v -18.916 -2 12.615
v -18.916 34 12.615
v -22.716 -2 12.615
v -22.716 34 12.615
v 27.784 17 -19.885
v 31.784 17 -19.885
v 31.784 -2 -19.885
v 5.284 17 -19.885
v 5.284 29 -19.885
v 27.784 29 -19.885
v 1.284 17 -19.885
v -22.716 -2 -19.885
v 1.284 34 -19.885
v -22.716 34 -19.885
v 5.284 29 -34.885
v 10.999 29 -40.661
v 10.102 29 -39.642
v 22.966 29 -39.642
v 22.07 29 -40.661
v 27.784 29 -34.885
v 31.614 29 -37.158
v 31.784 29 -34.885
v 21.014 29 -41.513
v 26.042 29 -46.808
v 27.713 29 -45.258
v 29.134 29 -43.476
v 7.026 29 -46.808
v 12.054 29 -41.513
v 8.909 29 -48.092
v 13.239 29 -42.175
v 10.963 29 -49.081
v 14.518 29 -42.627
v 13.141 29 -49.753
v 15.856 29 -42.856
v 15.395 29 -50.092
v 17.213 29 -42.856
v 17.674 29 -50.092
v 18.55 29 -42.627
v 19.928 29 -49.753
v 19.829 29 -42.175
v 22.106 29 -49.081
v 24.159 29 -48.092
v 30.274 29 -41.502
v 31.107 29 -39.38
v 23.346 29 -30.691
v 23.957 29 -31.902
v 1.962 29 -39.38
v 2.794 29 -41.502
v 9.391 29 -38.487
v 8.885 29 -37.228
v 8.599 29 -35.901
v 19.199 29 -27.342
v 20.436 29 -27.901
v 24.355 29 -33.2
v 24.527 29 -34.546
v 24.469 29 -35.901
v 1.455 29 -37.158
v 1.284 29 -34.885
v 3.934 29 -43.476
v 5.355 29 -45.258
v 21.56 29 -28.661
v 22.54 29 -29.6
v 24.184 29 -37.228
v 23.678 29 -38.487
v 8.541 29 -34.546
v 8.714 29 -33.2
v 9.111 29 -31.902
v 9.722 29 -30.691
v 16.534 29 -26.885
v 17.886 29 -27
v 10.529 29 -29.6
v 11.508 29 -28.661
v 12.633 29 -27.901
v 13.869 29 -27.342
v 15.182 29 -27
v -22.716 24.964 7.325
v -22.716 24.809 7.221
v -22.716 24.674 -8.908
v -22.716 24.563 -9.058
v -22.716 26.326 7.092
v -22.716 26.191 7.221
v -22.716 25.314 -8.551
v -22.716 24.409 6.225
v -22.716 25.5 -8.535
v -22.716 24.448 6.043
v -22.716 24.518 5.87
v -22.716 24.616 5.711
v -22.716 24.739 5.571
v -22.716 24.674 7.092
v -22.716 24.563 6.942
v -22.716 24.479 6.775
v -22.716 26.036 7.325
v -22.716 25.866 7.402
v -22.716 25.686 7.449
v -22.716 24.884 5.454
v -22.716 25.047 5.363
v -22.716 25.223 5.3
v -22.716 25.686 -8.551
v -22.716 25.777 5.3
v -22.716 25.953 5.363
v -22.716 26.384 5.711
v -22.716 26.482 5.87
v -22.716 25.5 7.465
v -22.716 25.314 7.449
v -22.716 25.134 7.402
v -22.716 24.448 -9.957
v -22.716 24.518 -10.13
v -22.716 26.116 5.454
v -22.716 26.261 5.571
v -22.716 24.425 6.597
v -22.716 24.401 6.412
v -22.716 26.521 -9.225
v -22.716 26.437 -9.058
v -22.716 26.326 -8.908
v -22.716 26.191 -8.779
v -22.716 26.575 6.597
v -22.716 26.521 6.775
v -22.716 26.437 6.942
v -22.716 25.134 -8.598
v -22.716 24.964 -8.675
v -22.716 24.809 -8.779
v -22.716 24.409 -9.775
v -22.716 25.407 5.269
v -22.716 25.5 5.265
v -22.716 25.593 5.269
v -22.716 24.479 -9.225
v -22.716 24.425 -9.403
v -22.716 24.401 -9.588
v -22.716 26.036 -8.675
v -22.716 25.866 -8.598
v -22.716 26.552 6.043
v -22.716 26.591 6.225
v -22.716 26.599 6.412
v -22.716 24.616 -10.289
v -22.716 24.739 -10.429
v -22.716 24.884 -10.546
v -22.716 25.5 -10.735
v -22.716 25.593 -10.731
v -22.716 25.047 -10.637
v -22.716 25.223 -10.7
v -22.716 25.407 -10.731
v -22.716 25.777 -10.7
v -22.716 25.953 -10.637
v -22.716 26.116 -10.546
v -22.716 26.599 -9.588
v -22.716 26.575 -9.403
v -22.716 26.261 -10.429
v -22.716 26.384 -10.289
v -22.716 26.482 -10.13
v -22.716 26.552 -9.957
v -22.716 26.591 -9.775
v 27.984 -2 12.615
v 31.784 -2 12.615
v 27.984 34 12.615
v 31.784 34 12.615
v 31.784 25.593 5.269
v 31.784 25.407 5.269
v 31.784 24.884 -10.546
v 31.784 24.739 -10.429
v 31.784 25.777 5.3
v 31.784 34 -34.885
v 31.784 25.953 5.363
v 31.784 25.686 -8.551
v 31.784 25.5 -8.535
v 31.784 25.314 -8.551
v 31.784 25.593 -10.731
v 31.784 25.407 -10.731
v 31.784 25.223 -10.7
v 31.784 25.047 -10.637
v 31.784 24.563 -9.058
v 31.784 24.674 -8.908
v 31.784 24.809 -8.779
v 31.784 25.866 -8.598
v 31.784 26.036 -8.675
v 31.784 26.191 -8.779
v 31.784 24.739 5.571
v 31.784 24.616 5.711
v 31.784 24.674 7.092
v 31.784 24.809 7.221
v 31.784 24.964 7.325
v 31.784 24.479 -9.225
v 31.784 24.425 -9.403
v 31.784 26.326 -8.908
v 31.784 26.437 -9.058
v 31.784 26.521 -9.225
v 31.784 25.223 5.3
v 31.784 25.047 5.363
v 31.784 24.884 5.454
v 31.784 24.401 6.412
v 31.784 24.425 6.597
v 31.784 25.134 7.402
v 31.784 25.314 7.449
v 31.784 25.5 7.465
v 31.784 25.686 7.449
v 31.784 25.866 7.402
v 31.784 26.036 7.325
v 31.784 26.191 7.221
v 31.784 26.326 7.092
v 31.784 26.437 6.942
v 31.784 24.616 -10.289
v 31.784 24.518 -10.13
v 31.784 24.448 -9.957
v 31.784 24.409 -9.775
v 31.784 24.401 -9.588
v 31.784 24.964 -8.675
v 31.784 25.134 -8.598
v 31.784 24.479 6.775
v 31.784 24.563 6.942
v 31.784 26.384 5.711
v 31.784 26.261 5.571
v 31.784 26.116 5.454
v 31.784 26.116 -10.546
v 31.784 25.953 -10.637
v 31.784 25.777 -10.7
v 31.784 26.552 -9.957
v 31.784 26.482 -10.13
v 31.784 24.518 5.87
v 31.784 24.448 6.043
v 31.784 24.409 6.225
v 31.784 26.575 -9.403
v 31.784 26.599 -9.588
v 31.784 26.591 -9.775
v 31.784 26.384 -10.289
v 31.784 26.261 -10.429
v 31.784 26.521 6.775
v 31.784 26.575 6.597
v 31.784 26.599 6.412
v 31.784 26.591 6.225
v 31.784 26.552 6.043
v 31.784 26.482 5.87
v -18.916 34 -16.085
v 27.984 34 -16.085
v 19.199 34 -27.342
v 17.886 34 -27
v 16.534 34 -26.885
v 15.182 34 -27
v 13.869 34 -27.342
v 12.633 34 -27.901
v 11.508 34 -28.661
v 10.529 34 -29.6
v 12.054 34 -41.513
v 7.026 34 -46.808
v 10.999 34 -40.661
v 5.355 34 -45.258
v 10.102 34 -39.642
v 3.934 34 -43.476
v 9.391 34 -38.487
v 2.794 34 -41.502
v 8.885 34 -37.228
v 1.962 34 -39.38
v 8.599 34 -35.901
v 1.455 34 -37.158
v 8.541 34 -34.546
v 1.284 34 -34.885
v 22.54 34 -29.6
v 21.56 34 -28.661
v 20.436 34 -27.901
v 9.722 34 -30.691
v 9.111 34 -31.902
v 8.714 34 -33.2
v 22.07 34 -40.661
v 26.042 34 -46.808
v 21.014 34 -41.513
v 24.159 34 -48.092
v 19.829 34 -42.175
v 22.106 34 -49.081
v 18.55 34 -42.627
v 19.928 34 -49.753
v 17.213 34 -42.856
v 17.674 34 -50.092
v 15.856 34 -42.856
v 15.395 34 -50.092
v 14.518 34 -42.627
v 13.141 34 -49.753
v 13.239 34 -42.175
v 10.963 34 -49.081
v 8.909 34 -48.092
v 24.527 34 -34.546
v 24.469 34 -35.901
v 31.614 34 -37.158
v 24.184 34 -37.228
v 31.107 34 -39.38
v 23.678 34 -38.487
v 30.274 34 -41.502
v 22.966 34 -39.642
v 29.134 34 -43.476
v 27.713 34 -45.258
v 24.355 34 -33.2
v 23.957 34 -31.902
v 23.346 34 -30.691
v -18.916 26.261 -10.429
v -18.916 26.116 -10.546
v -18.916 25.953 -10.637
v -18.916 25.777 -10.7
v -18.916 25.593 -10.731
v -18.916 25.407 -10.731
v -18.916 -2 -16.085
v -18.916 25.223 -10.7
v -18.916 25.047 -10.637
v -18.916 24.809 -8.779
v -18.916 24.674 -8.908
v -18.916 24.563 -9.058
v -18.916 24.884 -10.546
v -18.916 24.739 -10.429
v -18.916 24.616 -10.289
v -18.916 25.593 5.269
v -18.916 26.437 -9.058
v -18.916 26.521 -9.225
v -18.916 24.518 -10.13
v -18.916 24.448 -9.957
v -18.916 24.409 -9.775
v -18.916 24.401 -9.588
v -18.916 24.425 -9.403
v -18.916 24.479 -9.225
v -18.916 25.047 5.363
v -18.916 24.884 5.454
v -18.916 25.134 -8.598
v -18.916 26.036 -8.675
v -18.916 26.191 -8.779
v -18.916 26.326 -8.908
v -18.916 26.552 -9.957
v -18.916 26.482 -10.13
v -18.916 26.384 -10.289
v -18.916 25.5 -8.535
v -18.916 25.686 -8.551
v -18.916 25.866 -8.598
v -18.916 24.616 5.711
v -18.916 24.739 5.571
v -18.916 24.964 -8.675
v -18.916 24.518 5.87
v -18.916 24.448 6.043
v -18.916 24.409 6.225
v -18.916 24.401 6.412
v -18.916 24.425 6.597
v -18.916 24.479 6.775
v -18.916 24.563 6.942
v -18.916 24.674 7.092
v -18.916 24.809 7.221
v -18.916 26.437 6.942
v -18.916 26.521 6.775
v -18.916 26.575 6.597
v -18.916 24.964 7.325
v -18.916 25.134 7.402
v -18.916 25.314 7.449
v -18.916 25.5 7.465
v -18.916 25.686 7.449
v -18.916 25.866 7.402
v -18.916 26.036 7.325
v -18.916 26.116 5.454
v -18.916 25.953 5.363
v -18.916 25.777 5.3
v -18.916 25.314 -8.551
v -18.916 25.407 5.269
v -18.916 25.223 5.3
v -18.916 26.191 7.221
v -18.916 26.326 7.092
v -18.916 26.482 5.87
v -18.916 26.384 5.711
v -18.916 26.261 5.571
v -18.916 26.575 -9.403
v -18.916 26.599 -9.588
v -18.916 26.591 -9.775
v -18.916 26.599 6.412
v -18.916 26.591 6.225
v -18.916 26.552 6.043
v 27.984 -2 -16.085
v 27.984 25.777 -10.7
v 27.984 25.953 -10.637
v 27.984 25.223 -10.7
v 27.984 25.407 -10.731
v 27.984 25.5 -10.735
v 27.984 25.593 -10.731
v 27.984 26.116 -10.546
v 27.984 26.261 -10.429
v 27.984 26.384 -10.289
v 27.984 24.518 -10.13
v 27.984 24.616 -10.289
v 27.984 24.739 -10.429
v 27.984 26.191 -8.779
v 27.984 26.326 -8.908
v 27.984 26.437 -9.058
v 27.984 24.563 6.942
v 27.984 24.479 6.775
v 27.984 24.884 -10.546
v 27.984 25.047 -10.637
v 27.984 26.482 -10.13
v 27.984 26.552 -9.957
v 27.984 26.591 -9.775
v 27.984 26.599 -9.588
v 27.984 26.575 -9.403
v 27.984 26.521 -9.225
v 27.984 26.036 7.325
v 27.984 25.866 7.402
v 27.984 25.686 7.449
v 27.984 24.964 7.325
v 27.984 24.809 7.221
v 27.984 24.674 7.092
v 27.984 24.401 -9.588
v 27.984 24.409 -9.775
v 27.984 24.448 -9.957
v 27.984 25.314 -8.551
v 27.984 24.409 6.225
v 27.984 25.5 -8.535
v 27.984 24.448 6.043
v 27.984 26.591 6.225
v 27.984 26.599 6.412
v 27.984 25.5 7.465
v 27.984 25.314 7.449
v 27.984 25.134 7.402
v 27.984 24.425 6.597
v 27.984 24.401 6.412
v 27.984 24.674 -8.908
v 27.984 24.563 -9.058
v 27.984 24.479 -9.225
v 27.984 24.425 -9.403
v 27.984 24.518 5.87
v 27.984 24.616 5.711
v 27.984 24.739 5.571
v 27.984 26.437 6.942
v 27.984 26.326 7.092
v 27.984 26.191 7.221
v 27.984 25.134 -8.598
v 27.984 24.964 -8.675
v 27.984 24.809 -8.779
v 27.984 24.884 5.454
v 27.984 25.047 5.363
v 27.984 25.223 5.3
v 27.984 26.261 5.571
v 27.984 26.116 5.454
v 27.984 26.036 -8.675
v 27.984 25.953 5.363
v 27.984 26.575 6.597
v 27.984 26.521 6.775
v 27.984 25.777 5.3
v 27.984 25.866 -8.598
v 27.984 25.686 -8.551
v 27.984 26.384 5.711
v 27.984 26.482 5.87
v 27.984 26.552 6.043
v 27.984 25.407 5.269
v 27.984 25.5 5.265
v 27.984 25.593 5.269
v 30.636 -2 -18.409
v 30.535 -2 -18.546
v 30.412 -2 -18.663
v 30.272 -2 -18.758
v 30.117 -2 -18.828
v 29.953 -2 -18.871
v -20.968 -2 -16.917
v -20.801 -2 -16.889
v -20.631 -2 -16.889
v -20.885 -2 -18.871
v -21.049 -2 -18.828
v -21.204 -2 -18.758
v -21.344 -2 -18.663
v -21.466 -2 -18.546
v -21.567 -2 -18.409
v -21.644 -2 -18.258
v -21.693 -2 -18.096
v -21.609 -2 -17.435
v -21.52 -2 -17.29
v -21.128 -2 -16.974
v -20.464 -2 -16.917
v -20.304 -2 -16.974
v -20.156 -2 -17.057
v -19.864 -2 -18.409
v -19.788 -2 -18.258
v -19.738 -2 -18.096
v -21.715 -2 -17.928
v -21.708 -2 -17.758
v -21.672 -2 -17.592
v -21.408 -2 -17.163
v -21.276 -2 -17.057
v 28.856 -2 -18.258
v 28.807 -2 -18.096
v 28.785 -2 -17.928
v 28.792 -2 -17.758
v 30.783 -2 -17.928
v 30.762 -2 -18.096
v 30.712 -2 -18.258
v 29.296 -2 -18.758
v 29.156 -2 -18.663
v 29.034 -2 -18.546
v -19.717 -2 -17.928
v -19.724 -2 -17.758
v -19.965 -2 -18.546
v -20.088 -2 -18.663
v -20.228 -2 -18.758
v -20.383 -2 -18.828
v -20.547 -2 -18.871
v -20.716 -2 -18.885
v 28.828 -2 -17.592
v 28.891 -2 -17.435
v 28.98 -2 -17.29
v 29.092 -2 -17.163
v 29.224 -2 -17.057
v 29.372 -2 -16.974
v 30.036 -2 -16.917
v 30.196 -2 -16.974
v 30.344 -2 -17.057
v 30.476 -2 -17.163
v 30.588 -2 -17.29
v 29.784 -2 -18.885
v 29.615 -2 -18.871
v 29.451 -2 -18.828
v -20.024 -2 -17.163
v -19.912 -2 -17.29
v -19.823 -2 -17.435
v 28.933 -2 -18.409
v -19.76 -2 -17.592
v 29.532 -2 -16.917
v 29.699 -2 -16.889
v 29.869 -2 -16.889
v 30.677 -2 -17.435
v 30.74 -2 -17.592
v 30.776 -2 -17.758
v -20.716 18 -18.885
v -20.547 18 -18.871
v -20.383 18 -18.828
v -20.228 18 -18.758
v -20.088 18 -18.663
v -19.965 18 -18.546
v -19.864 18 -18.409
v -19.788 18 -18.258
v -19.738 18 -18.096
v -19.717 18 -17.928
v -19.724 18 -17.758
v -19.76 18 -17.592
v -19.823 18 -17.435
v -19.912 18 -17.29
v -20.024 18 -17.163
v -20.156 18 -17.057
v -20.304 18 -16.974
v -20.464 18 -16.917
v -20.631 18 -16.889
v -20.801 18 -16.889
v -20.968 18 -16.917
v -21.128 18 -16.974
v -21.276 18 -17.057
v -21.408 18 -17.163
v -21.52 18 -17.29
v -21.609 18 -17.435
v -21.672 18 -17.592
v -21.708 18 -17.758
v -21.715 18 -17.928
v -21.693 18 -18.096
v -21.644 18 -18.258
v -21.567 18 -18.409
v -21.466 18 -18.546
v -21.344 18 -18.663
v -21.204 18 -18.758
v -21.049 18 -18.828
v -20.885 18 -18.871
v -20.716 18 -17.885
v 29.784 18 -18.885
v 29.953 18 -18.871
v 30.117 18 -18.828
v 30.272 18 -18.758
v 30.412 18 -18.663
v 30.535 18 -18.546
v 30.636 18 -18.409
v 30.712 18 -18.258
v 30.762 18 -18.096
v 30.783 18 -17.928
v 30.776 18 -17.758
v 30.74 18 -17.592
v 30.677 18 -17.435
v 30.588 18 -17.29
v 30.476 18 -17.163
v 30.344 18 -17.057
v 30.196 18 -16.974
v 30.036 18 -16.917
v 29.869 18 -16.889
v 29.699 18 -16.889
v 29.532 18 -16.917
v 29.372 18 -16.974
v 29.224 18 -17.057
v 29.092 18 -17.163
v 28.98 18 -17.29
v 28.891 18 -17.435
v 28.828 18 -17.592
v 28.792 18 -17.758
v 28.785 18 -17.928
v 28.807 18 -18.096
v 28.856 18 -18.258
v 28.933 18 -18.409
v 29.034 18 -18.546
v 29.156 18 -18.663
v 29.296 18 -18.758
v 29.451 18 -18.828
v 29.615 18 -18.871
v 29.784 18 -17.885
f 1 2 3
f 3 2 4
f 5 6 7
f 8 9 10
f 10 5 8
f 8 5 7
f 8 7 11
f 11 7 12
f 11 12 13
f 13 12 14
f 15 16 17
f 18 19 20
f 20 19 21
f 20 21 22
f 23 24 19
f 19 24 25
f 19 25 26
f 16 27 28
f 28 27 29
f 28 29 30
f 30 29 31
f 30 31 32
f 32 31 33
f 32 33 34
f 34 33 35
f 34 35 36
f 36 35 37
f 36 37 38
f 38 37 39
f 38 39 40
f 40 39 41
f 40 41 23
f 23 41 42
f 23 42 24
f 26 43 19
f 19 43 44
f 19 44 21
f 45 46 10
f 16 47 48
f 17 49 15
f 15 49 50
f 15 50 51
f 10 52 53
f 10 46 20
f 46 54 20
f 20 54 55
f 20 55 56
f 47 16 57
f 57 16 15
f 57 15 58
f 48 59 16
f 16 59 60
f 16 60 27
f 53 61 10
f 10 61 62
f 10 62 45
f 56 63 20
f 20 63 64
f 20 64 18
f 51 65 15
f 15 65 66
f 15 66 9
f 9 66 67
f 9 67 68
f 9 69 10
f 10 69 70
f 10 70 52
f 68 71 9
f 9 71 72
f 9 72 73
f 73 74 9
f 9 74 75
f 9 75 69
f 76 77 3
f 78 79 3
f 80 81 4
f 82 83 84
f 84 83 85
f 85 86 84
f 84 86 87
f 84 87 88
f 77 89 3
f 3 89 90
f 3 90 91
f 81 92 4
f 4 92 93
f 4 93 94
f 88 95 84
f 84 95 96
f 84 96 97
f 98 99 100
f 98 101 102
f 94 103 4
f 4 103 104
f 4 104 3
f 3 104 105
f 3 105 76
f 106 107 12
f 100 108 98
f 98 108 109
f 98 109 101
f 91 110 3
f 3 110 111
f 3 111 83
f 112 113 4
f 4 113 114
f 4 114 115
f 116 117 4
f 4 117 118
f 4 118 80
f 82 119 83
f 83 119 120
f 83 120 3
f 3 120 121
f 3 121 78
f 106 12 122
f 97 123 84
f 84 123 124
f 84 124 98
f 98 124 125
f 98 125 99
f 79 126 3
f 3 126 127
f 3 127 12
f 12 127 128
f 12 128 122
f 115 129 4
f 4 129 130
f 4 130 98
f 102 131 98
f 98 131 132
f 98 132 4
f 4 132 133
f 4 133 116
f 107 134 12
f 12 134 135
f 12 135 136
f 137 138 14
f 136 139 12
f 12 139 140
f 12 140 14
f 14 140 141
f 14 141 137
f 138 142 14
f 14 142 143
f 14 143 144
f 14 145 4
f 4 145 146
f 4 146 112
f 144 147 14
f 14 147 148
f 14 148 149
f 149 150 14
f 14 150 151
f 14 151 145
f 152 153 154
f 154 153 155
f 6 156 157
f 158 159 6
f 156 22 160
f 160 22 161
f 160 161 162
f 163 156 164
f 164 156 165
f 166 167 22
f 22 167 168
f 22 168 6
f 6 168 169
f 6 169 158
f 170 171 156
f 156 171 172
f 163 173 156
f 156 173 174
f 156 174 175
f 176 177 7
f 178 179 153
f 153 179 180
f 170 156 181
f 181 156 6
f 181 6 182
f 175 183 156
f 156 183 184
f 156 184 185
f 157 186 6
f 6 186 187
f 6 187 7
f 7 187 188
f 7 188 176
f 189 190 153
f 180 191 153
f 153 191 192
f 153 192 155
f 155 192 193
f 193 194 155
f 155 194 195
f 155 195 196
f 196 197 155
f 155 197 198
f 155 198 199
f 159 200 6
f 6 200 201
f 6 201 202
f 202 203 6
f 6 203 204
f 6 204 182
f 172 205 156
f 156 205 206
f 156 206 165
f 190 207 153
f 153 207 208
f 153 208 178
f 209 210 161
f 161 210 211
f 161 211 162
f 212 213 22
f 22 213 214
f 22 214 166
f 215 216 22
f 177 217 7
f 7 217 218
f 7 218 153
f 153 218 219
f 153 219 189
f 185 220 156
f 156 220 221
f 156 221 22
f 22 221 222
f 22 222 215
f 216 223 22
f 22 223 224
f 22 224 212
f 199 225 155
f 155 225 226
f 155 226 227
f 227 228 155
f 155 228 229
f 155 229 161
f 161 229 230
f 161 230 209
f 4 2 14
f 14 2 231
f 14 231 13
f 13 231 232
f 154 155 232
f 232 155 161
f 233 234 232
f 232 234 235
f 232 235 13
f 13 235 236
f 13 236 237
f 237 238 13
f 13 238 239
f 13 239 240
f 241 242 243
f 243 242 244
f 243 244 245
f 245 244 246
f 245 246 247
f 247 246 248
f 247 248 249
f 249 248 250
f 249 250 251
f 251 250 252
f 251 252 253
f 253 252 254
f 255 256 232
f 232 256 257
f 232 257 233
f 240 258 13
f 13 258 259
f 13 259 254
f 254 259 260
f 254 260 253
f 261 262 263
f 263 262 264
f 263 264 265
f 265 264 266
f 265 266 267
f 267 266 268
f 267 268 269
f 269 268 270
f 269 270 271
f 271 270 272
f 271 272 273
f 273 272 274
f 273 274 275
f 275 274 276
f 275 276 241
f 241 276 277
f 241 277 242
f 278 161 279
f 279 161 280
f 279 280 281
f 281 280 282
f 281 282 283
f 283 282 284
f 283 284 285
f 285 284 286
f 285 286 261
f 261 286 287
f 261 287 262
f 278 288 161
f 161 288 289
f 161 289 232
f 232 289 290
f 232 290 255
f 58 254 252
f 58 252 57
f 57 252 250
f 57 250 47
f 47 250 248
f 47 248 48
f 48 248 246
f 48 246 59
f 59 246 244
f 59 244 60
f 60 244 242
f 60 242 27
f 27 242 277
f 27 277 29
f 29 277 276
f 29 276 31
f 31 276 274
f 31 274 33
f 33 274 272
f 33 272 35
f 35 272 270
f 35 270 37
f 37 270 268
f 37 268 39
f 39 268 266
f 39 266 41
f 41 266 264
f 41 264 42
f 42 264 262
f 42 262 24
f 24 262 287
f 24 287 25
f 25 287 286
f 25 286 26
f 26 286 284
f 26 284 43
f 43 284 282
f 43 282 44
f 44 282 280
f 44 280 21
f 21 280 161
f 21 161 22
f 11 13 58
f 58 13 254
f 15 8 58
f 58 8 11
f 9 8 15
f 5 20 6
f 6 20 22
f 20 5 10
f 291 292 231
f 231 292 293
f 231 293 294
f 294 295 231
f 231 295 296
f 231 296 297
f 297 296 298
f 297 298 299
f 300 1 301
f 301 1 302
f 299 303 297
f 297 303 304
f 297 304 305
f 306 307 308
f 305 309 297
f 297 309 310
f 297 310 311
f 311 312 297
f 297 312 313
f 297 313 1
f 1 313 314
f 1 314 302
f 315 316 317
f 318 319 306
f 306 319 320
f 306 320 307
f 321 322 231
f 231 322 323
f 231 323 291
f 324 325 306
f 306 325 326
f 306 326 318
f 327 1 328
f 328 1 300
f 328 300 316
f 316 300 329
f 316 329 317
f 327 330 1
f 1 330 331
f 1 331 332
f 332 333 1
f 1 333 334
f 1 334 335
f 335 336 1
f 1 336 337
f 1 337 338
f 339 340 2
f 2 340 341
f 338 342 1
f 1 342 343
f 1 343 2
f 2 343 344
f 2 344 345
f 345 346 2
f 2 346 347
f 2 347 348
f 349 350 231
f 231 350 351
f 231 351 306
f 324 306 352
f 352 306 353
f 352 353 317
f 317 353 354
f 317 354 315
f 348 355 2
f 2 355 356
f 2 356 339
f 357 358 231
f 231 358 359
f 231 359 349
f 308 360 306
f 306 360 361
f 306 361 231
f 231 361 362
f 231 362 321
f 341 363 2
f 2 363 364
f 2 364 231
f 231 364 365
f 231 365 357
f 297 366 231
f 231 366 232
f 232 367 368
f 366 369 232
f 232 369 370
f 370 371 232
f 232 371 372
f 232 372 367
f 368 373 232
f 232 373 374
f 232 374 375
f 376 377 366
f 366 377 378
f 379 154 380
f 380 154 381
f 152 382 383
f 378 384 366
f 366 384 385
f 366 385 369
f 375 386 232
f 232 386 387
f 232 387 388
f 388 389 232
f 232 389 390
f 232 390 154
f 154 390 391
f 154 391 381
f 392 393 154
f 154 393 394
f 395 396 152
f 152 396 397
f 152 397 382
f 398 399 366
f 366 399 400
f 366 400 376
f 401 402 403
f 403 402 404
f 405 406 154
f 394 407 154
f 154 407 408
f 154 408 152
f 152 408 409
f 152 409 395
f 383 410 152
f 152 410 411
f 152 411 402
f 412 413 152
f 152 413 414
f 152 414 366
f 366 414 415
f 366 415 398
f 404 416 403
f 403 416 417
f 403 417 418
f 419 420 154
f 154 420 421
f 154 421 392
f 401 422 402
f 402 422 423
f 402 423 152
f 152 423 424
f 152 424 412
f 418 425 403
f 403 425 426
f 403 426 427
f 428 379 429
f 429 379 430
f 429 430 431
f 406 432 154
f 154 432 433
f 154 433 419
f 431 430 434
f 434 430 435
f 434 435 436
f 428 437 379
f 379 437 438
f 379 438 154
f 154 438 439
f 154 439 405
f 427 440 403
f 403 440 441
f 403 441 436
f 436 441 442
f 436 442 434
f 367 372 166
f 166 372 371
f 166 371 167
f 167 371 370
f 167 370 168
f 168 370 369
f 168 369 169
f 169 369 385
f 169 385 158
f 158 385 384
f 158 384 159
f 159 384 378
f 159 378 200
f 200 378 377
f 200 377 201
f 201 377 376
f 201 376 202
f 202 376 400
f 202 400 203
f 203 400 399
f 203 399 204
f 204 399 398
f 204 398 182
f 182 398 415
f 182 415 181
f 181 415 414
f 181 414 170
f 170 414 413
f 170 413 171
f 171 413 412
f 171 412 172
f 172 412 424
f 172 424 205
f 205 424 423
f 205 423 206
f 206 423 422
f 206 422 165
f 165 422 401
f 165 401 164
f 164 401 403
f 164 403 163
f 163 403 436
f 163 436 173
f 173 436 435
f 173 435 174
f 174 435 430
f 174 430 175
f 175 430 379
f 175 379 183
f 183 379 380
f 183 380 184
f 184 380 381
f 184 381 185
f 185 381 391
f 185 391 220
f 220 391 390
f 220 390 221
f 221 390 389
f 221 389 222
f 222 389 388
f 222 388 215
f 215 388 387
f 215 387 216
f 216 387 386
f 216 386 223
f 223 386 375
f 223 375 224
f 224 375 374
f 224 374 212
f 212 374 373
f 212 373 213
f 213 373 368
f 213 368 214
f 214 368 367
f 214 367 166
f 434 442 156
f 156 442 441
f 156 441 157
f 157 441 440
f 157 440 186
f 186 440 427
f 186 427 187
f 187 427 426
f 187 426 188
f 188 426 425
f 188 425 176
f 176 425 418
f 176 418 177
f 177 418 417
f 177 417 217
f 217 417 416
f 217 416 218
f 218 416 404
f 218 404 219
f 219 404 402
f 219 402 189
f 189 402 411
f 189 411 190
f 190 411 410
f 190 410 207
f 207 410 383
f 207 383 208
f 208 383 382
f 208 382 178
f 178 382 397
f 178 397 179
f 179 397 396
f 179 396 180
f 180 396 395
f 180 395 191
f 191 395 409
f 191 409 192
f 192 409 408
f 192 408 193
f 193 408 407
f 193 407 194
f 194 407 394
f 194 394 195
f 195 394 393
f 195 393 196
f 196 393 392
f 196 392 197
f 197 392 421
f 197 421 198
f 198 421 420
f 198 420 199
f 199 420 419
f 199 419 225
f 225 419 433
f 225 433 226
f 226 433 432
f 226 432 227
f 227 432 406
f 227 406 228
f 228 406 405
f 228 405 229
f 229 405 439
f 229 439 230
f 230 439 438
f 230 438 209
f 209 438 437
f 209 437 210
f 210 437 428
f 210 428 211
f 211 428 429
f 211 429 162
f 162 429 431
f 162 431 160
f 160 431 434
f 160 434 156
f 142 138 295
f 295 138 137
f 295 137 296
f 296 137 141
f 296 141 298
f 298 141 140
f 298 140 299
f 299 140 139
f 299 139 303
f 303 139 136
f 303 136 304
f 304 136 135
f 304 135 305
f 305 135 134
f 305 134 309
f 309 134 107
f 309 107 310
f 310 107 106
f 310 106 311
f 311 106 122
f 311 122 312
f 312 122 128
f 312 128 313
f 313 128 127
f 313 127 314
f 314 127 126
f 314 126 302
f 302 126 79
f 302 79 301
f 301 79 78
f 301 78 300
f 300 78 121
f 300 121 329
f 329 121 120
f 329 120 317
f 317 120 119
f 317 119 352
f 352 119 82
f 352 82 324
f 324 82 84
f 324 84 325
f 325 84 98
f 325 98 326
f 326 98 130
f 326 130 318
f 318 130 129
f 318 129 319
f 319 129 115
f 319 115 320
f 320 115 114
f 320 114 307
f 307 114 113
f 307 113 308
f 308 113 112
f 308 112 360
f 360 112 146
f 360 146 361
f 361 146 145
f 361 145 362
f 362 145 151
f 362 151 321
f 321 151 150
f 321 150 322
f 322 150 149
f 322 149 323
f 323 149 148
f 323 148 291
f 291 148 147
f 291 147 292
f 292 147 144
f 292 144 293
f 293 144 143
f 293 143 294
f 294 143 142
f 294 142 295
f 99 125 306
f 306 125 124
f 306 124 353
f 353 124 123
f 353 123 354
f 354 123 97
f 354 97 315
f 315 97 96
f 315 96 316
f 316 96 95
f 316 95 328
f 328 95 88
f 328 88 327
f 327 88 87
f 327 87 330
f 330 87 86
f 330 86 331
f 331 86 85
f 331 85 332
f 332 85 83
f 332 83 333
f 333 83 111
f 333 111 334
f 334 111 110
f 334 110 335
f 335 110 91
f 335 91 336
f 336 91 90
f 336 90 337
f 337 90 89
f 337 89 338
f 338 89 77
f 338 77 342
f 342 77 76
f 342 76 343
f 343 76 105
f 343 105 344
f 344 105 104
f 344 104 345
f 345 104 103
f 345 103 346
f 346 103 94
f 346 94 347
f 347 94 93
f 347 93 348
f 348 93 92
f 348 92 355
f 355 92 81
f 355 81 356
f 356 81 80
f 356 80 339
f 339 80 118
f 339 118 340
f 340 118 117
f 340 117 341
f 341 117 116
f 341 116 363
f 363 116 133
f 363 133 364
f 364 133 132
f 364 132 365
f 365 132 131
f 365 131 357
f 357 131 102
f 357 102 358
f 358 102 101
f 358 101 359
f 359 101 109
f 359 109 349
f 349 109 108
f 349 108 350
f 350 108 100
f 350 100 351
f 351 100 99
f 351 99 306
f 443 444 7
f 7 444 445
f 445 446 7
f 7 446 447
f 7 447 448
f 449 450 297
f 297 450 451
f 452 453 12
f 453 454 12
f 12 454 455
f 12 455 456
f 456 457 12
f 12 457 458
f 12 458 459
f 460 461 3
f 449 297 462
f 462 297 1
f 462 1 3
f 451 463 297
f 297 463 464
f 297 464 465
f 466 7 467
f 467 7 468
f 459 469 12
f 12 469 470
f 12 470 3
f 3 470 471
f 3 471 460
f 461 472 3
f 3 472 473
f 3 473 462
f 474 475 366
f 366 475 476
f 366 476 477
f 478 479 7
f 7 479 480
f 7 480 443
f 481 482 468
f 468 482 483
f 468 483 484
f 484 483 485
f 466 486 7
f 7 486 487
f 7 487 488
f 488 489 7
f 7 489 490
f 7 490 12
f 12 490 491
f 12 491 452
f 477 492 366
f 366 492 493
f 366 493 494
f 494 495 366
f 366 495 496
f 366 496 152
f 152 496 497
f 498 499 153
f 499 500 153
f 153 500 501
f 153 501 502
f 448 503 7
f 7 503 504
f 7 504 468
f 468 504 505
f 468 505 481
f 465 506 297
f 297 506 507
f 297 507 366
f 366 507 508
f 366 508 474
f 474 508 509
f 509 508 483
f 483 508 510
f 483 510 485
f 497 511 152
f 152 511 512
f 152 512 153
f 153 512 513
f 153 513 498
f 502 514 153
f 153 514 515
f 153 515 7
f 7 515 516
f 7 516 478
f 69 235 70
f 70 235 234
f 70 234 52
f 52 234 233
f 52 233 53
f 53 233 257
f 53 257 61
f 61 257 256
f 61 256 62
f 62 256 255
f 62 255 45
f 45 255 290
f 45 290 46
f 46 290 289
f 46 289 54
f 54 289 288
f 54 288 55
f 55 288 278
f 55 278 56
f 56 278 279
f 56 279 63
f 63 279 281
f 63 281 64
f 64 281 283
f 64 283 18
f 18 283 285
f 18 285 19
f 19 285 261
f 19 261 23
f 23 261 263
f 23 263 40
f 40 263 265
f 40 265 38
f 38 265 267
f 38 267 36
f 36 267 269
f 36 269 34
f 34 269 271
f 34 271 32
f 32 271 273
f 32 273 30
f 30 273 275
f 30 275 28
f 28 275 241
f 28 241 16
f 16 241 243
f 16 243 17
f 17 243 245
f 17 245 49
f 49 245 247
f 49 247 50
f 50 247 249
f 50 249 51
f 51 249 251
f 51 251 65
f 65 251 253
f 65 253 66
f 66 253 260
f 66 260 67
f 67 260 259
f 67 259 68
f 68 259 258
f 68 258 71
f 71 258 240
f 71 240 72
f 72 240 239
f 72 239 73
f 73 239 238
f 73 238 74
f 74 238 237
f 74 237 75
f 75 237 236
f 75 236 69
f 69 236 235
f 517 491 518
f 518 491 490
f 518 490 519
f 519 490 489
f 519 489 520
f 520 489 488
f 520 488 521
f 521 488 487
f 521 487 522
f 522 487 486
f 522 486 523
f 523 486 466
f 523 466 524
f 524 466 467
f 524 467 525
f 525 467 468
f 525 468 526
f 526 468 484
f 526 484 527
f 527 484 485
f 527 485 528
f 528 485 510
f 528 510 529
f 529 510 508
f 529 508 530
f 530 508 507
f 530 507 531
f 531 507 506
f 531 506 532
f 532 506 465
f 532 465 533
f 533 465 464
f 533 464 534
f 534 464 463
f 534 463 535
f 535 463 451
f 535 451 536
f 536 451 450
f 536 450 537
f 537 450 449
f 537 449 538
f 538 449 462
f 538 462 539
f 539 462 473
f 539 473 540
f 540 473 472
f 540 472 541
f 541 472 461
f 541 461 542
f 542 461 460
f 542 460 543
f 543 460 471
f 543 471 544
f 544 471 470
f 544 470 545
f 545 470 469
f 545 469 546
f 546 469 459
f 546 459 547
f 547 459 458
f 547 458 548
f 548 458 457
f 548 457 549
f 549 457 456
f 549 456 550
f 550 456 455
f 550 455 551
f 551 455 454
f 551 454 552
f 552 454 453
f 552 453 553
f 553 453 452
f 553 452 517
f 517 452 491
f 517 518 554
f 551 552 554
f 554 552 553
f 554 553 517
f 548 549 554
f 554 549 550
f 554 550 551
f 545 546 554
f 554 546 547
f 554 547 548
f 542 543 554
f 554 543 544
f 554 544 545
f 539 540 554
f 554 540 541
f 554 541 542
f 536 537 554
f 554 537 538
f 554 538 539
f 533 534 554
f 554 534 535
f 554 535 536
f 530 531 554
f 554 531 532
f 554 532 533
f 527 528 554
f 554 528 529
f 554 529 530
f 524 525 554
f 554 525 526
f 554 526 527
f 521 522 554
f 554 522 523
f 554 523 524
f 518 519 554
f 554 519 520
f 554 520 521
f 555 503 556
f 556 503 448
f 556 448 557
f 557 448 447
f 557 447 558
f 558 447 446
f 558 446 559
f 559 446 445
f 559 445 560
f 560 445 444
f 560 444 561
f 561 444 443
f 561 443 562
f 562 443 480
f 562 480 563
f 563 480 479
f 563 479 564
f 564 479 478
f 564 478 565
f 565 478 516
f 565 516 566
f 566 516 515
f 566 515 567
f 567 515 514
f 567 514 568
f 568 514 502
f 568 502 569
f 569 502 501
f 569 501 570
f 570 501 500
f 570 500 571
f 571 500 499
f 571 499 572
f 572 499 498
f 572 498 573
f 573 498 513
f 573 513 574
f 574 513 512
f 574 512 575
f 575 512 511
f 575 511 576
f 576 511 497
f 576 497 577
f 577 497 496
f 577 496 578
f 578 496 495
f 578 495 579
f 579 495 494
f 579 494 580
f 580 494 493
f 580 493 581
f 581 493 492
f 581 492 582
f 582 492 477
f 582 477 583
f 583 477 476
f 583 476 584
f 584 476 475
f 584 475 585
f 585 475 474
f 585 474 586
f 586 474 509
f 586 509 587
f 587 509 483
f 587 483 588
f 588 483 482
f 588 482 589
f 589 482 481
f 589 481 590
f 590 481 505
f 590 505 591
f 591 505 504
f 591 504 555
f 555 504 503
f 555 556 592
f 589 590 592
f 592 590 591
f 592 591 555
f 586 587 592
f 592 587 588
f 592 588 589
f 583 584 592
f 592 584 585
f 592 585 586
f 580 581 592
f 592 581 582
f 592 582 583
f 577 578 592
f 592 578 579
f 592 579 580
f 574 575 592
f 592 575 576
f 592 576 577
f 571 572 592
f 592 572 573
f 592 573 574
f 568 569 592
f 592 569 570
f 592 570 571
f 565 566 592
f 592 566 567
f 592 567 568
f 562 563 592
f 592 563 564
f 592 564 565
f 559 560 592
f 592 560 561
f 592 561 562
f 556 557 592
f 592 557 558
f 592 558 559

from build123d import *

# Parameters (mm, degrees)
SKETCH_1_W          = 54.5
SKETCH_1_H          = 32.5
EXTRUDE_2_DEPTH     = 34
EXTRUDE_3_DEPTH     = 5
EXTRUDE_6_DEPTH     = 4
SKETCH_14_W         = 46.9
SKETCH_14_H         = 28.7
CUT_EXTRUDE_6_DEPTH = 35
SKETCH_15_R         = 1.1
CUT_EXTRUDE_7_DEPTH = 47
EXTRUDE_7_DEPTH     = 2
SKETCH_18_R         = 8
CUT_EXTRUDE_8_DEPTH = 10
SKETCH_19_R         = 1
CUT_EXTRUDE_9_DEPTH = 20


with BuildPart() as part:
    # 草图1 → 凸台-拉伸2 (new body)
    with BuildSketch(Plane(origin=(0, 0, 0), x_dir=(1, 0, 0), z_dir=(0, 1, 0))):
        with Locations((4.534184514, 3.63509061)):
            Rectangle(SKETCH_1_W, SKETCH_1_H)
    extrude(amount=EXTRUDE_2_DEPTH)

    # 草图3 → 凸台-拉伸3 (add)
    with BuildSketch(Plane(origin=(0, 34, 0), x_dir=(1, 0, 0), z_dir=(0, 1, 0))):
        with BuildLine():
            Line((1.284184514, 34.88509061), (1.284184514, 19.88509061))
            Line((1.284184514, 19.88509061), (31.784184514, 19.88509061))
            Line((31.784184514, 19.88509061), (31.784184514, 34.88509061))
            ThreePointArc((31.784184514, 34.88509061), (16.534184514, 50.13509061), (1.284184514, 34.88509061))
        make_face()
    extrude_3 = extrude(amount=-EXTRUDE_3_DEPTH)

    # 草图11 → 凸台-拉伸6 (add)
    with BuildSketch(Plane.ZY.offset(-1.284184514)):
        Polygon((-34.88509061, 29), (-19.88509061, 17), (-19.88509061, 29), align=None)
    extrude_6 = extrude(amount=-EXTRUDE_6_DEPTH)

    # 镜向1: 凸台-拉伸3, 凸台-拉伸6 across plane
    add(extrude_3.mirror(Plane.ZY.offset(-16.534184514)))
    add(extrude_6.mirror(Plane.ZY.offset(-16.534184514)))

    # 草图14 → 切除-拉伸6 (cut, through all)
    with BuildSketch(Plane(origin=(0, 34, 0), x_dir=(1, 0, 0), z_dir=(0, 1, 0))):
        with Locations((4.534184514, 1.73509061)):
            Rectangle(SKETCH_14_W, SKETCH_14_H)
    extrude(amount=-CUT_EXTRUDE_6_DEPTH, mode=Mode.SUBTRACT)

    # 草图15 → 切除-拉伸7 (cut, symmetric)
    with BuildSketch(Plane.ZY.offset(-16.534184514)):
        with Locations((-9.63509061, 25.5)):
            Circle(SKETCH_15_R)
        with Locations((6.36490939, 25.5)):
            Circle(SKETCH_15_R)
    extrude(amount=CUT_EXTRUDE_7_DEPTH, both=True, mode=Mode.SUBTRACT)

    # 草图17 → 凸台-拉伸7 (add)
    with BuildSketch(Plane(origin=(0, 0, 0), x_dir=(1, 0, 0), z_dir=(0, 1, 0))):
        Polygon((-22.715815486, -12.61490939), (-22.715815486, 19.88509061), (31.784184514, 19.88509061), (31.784184514, -12.61490939), (27.984184514, -12.61490939), (27.984184514, 16.08509061), (-18.915815486, 16.08509061), (-18.915815486, -12.61490939), align=None)
    extrude(amount=-EXTRUDE_7_DEPTH)

    # 草图18 → 切除-拉伸8 (cut)
    with BuildSketch(Plane(origin=(0, 34, 0), x_dir=(1, 0, 0), z_dir=(0, 1, 0))):
        with Locations((16.534184514, 34.88509061)):
            Circle(SKETCH_18_R)
    extrude(amount=-CUT_EXTRUDE_8_DEPTH, mode=Mode.SUBTRACT)

    # 草图19 → 切除-拉伸9 (cut)
    with BuildSketch(Plane.XZ.offset(2)):
        with Locations((29.784184514, -17.88509061)):
            Circle(SKETCH_19_R)
        with Locations((-20.715815486, -17.88509061)):
            Circle(SKETCH_19_R)
    extrude(amount=-CUT_EXTRUDE_9_DEPTH, mode=Mode.SUBTRACT)


solid = part.part
